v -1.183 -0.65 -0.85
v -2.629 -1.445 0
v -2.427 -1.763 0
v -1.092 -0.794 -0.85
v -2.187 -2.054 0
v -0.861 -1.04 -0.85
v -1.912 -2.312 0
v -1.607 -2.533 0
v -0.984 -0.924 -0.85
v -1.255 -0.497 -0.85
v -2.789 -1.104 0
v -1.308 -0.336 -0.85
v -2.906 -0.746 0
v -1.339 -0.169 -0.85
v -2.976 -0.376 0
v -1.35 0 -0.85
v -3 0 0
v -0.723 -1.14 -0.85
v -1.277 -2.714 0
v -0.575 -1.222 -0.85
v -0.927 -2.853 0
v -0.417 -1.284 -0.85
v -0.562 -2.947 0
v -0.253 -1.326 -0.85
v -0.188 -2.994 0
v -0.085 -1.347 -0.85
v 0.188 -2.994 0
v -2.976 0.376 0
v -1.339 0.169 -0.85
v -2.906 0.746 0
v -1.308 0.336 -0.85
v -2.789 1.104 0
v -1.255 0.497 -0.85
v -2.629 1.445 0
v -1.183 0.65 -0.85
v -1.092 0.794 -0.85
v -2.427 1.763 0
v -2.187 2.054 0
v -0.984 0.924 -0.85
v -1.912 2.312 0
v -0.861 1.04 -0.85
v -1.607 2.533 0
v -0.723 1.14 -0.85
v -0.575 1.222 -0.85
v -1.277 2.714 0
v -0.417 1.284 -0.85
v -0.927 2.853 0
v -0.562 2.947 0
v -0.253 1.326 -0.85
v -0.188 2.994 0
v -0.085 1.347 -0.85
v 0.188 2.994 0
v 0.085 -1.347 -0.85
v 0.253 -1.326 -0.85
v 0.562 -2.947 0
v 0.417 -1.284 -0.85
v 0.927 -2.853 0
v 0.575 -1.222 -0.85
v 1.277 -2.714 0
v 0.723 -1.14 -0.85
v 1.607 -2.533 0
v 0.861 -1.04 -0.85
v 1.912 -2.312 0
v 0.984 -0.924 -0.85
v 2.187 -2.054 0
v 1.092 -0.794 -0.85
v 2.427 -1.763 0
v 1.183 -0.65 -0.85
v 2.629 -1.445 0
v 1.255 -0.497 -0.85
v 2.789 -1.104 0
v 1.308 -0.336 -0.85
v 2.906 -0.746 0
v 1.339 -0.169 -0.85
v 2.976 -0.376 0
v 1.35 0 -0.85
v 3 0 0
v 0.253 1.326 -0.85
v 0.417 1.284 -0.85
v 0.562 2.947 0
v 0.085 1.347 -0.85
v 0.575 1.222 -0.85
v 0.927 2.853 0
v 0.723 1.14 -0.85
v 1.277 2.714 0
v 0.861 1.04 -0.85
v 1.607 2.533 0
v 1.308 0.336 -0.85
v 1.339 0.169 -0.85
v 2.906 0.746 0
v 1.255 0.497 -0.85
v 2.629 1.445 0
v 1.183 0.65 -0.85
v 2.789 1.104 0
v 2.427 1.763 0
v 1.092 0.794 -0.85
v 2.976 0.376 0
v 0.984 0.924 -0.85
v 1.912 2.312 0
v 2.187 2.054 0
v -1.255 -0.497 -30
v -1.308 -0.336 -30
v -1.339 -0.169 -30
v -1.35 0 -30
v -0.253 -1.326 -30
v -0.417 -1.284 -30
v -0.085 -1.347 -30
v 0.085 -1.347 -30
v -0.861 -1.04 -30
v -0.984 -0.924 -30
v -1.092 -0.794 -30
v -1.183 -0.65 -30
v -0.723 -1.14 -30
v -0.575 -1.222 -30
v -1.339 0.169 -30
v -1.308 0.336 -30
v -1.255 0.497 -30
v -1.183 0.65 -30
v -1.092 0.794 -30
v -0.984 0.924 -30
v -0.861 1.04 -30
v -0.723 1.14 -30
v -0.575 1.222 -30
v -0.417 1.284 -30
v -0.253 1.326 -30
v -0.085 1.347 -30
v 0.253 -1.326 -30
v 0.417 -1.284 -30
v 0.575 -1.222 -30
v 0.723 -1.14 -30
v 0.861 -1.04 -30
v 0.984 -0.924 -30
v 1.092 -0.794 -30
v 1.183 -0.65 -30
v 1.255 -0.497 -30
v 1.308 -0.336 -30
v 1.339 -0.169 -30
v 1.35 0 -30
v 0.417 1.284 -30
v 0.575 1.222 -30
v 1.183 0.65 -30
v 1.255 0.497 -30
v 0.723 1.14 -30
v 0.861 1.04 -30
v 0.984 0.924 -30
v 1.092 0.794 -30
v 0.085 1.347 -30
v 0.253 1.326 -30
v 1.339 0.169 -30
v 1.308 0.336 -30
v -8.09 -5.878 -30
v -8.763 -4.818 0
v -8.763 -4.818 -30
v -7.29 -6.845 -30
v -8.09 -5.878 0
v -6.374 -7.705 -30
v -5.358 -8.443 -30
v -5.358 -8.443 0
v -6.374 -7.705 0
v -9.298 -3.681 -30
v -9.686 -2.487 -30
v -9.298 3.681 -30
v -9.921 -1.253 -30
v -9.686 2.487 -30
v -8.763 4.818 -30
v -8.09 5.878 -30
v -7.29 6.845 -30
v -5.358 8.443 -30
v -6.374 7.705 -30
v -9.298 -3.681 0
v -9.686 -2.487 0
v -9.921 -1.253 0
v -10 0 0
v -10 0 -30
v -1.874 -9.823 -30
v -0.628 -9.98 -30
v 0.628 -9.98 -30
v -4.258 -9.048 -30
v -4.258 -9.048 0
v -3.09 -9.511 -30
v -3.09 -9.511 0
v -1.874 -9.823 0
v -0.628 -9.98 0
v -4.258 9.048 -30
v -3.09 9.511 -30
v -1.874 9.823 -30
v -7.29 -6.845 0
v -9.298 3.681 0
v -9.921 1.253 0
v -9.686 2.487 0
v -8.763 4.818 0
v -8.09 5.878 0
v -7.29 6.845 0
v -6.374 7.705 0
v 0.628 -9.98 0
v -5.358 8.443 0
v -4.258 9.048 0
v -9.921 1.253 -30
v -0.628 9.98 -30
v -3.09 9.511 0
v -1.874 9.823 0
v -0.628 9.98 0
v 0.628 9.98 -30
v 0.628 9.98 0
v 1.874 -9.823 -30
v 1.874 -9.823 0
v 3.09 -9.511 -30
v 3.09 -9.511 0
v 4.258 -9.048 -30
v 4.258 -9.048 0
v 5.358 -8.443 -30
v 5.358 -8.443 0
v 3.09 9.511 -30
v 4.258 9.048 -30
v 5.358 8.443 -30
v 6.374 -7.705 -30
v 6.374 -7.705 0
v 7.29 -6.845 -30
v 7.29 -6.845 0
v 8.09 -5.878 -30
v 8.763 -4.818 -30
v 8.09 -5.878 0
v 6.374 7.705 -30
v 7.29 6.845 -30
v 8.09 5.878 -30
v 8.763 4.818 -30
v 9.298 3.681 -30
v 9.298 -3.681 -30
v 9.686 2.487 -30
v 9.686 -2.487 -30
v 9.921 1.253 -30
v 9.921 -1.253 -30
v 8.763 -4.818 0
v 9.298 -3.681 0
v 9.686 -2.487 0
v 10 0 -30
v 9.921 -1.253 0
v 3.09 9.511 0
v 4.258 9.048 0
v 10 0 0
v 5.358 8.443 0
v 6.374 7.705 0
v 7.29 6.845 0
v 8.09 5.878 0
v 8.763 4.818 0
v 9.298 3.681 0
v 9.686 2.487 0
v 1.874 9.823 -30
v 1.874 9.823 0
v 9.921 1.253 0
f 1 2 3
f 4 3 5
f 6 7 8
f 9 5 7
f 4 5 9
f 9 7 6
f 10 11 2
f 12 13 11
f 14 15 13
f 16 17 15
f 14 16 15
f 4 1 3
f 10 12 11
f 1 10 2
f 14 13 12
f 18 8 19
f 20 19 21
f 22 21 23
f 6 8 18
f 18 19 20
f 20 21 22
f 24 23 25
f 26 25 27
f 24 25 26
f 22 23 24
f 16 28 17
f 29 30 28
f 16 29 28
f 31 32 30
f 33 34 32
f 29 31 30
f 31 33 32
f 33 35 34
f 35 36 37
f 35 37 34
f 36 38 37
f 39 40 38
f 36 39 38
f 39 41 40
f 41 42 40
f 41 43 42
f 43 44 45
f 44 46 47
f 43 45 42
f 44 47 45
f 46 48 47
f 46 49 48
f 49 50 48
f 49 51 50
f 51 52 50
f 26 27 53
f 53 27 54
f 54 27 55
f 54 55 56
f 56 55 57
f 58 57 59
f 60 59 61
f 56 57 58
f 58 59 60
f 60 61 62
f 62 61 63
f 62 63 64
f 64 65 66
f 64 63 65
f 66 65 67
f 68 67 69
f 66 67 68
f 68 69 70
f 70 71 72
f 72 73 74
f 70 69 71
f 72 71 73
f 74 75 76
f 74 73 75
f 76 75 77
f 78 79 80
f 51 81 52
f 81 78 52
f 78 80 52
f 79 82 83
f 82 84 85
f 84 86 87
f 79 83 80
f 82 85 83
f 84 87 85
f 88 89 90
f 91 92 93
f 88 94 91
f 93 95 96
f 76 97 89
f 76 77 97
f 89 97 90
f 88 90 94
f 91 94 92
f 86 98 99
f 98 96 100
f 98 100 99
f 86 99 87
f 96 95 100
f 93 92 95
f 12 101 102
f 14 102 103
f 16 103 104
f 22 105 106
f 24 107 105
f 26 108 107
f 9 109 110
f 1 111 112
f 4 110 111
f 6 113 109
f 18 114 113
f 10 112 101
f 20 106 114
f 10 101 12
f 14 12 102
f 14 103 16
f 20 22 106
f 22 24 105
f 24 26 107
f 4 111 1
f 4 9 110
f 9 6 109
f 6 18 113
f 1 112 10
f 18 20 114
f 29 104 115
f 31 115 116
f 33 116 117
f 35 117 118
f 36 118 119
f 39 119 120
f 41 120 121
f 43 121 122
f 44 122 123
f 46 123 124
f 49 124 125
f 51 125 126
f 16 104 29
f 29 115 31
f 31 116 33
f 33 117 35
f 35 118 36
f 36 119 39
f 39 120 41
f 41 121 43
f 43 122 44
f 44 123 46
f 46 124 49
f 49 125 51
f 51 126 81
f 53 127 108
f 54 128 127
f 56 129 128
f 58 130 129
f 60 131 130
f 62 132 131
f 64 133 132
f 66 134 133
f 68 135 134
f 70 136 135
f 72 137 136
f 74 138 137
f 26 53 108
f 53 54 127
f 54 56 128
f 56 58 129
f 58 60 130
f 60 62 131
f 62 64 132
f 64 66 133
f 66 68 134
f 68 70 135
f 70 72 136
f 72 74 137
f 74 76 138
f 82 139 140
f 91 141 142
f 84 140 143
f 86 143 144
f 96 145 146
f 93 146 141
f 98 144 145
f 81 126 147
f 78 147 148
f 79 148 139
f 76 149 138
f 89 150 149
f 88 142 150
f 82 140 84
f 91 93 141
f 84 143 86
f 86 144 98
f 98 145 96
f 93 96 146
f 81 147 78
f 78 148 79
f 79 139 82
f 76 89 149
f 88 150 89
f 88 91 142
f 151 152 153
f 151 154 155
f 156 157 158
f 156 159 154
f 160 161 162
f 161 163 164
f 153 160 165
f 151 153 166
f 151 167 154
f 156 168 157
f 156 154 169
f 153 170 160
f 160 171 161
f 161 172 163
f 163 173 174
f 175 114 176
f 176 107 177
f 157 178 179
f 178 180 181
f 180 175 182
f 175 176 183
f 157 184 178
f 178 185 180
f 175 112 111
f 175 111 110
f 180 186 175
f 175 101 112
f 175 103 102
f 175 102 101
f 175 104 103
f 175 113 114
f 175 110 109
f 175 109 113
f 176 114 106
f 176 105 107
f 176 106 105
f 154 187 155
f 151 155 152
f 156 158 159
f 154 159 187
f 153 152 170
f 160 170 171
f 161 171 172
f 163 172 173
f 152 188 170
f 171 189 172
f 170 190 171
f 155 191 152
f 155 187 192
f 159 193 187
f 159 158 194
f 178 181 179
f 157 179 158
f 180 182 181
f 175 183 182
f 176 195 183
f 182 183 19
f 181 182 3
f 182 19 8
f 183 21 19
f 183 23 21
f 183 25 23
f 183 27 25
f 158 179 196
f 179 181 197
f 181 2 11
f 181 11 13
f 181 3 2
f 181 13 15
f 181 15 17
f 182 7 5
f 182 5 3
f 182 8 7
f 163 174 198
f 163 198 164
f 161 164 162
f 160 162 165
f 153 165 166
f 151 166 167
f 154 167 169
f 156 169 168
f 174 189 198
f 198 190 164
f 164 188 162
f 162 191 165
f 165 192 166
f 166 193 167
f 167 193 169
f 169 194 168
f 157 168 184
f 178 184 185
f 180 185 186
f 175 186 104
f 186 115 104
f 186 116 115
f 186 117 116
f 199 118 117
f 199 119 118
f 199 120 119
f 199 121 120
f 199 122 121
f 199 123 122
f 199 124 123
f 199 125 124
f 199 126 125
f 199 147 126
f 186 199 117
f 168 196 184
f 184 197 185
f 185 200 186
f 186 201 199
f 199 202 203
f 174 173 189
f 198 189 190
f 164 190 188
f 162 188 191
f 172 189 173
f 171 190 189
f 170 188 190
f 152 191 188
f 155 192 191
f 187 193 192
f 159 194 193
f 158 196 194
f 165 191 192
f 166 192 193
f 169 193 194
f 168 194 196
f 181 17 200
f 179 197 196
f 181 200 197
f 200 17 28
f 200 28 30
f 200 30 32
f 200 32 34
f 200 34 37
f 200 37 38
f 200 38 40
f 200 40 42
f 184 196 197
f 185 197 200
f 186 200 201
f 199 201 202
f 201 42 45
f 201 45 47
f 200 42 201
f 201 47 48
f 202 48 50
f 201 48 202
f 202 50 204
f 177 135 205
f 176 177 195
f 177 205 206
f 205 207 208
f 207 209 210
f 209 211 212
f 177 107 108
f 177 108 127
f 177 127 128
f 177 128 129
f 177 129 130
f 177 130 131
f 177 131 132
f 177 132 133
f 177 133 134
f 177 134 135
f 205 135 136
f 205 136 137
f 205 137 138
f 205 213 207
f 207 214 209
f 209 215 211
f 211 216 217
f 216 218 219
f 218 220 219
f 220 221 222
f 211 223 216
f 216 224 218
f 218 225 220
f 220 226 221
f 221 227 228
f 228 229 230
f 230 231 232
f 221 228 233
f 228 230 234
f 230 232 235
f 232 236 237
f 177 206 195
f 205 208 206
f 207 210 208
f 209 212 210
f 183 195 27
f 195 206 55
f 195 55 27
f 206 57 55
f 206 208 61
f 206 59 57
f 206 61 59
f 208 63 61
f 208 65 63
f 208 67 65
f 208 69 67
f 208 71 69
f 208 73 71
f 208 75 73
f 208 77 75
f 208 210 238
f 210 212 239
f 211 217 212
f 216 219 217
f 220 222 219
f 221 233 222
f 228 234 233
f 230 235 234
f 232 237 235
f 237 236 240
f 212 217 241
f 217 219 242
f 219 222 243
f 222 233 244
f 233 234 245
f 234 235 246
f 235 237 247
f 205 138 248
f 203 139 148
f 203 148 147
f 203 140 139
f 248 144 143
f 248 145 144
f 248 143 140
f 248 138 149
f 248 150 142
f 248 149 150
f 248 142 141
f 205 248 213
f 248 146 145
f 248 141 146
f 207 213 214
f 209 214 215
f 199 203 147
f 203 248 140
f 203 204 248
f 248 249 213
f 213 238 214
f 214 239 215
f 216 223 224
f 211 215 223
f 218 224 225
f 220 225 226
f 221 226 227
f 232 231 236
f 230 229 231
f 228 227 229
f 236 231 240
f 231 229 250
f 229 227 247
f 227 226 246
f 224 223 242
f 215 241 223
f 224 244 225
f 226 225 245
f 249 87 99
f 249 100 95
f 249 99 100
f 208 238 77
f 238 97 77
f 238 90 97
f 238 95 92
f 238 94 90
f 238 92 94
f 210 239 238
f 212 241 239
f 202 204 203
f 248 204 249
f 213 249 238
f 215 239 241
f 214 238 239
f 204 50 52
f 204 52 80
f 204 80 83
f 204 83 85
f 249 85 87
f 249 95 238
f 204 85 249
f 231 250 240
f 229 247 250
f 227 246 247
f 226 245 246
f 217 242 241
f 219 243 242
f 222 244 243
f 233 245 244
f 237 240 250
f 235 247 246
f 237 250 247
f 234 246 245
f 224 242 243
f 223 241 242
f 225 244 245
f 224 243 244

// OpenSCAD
$fn = 50;


difference() {
	union() {
		translate(v = [0, 0, -30.0000000000]) {
			cylinder(h = 30, r = 10.0000000000);
		}
	}
	union() {
		translate(v = [0, 0, 0]) {
			rotate(a = [0, 0, 0]) {
				difference() {
					union() {
						translate(v = [0, 0, -33.0000000000]) {
							cylinder(h = 33, r = 1.0000000000);
						}
						translate(v = [0, 0, -0.8500000000]) {
							cylinder(h = 0.8500000000, r1 = 1.3500000000, r2 = 3.0000000000);
						}
						translate(v = [0, 0, -33.0000000000]) {
							cylinder(h = 33, r = 1.3500000000);
						}
						translate(v = [0, 0, -33.0000000000]) {
							cylinder(h = 33, r = 1.0000000000);
						}
					}
					union();
				}
			}
		}
	}
}
